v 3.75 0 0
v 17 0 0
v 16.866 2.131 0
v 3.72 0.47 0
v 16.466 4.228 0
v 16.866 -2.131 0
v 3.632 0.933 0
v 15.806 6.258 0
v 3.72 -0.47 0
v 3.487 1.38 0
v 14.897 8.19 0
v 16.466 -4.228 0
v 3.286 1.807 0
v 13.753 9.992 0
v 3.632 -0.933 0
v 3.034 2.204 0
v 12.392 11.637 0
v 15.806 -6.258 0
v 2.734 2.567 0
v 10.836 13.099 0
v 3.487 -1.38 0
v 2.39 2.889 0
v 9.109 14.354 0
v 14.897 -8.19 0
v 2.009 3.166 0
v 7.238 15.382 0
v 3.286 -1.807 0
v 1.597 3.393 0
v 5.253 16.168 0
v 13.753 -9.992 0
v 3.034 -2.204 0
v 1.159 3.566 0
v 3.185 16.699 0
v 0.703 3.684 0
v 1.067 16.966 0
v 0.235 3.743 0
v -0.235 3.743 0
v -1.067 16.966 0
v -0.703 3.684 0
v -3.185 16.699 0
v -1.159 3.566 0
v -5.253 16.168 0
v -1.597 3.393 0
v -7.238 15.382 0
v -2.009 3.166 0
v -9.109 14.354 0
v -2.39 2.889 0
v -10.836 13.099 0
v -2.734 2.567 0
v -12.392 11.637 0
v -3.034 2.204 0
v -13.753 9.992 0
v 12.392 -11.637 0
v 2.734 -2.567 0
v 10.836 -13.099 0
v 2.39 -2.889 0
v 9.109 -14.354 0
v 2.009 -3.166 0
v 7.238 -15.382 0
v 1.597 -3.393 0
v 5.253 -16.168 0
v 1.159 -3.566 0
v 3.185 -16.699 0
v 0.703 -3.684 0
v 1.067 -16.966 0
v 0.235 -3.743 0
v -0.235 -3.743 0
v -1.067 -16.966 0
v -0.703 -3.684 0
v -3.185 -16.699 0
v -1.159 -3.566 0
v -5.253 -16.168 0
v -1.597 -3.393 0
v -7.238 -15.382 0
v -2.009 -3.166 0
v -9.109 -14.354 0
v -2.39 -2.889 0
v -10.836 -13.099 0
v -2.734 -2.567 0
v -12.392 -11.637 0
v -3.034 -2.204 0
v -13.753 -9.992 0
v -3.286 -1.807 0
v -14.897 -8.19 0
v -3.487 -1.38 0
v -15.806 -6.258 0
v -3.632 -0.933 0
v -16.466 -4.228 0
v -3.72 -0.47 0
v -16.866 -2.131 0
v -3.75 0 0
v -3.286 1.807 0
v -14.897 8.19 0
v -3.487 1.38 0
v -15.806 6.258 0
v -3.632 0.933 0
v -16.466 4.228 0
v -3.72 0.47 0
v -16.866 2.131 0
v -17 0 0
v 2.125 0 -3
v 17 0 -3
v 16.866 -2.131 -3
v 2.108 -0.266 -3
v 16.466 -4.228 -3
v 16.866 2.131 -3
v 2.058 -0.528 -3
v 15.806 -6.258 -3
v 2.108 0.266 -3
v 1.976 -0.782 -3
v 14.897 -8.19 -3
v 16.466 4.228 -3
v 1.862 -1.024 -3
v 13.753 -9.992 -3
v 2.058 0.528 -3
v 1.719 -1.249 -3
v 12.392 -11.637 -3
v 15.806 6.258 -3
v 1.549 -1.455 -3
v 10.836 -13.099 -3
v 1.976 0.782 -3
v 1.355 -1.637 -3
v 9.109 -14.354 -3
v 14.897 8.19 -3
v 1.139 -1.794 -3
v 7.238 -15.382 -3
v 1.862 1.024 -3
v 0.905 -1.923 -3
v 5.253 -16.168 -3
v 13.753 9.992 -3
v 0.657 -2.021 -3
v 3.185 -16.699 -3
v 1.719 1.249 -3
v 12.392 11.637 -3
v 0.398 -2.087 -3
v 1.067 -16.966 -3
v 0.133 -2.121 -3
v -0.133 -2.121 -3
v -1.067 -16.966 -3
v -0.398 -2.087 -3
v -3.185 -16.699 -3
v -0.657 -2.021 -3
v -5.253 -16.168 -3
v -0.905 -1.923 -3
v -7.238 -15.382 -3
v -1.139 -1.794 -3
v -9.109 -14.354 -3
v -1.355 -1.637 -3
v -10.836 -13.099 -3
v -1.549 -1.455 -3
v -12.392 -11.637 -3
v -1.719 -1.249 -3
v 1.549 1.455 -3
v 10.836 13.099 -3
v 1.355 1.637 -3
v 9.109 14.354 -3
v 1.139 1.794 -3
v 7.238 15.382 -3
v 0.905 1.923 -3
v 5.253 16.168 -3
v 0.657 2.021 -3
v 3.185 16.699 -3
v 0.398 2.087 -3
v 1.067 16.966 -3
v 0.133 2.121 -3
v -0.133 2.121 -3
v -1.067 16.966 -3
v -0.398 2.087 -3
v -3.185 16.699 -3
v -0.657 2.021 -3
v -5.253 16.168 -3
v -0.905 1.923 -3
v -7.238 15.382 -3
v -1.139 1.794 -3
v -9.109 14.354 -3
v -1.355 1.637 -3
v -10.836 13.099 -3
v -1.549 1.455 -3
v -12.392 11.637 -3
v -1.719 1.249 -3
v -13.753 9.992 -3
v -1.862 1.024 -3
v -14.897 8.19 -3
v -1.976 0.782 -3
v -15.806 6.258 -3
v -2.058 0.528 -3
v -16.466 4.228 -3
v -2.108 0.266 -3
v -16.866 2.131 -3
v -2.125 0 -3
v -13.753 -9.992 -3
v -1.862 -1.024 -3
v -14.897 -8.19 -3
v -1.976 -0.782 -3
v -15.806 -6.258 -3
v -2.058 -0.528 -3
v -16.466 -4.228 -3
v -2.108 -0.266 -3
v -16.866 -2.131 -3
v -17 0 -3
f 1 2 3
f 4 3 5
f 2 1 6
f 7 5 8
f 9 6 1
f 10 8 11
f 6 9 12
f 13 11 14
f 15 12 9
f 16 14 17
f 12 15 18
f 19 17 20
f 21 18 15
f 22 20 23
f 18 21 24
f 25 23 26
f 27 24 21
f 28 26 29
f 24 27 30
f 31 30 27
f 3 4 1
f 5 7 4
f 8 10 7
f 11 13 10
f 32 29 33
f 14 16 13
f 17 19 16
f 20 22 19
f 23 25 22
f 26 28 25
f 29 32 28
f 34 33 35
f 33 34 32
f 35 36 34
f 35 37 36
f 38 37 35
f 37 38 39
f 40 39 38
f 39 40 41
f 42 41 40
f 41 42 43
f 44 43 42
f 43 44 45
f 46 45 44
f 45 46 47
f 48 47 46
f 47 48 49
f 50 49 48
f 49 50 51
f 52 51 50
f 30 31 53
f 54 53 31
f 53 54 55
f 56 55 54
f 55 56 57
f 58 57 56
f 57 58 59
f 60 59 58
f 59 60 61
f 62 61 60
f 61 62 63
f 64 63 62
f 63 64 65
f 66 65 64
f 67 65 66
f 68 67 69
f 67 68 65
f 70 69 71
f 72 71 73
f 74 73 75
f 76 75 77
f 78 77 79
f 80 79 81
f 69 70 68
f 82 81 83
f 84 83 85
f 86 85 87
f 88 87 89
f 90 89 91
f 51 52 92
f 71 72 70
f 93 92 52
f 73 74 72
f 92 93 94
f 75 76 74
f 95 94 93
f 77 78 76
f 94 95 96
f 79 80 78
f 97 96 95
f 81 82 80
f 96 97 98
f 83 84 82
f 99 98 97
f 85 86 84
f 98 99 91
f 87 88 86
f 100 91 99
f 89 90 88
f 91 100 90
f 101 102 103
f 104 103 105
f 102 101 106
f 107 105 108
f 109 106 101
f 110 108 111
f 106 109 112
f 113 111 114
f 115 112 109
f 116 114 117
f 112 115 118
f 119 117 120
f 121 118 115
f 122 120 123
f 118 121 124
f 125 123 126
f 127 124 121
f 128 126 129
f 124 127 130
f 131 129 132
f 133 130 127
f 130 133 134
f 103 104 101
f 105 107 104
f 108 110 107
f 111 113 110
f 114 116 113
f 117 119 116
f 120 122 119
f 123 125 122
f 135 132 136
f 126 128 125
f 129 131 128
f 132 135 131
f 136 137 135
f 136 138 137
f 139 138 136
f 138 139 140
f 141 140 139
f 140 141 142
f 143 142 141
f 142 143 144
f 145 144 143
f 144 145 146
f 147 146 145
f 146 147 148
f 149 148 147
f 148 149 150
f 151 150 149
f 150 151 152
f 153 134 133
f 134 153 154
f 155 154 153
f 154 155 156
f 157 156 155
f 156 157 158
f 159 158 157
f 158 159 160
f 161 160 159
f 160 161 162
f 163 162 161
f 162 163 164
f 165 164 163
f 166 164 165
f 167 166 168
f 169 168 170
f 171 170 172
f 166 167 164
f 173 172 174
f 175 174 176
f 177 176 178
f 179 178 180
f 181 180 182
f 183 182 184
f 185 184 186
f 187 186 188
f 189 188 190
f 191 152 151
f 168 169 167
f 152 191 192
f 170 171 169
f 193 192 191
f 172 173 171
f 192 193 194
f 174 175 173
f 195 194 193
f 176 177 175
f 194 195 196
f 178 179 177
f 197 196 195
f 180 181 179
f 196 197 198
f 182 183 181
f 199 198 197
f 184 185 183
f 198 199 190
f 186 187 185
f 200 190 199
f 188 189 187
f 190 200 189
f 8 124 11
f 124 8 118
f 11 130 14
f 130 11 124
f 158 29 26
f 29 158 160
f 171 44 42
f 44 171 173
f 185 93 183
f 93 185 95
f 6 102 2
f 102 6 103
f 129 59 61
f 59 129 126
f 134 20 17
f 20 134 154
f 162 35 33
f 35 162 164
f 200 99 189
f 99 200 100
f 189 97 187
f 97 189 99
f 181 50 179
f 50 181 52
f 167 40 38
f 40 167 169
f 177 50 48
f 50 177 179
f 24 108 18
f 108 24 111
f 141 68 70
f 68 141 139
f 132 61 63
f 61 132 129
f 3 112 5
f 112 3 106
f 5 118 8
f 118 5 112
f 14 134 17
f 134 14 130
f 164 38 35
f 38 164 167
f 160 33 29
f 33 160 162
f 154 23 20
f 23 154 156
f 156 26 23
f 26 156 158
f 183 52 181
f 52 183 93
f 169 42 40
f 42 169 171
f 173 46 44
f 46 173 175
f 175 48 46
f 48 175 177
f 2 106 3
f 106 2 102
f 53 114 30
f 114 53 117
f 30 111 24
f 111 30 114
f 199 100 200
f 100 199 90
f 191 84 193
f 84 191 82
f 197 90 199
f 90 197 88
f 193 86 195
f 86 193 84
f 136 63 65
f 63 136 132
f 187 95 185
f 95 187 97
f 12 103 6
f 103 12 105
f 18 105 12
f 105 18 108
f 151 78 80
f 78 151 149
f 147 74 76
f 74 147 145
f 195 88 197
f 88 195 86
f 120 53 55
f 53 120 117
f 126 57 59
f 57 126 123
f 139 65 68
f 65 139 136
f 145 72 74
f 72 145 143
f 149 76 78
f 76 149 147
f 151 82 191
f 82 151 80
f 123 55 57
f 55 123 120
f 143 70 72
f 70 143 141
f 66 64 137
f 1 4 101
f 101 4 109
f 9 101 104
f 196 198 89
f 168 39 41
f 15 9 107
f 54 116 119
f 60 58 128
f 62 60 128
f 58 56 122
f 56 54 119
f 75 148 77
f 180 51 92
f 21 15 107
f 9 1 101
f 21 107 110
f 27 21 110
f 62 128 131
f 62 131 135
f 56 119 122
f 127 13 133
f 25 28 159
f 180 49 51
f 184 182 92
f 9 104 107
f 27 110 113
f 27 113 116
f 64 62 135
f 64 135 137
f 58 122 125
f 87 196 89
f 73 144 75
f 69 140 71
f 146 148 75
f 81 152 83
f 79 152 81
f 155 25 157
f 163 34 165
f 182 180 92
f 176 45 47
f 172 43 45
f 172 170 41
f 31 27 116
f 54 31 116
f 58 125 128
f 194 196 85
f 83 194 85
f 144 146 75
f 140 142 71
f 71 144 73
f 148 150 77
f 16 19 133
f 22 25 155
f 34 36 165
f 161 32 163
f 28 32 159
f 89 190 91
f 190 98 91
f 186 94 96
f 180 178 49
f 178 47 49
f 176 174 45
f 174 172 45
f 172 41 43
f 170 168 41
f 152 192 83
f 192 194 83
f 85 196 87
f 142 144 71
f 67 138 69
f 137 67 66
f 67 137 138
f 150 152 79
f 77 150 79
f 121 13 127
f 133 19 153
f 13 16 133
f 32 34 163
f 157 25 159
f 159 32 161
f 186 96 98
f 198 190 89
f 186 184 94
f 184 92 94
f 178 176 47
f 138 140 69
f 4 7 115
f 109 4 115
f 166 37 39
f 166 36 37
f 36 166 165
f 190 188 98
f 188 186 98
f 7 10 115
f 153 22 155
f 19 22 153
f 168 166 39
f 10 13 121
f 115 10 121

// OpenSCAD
$fn = 50;


difference() {
	union() {
		translate(v = [0, 0, -3.0000000000]) {
			cylinder(h = 3, r = 7.0000000000);
		}
		translate(v = [0, 0, -3.0000000000]) {
			cylinder(h = 3, r = 17.0000000000);
		}
	}
	union() {
		translate(v = [0, 0, 0]) {
			rotate(a = [0, 0, 0]) {
				difference() {
					union() {
						#translate(v = [0, 0, -3.0000000000]) {
							cylinder(h = 3, r = 2.0000000000);
						}
						#translate(v = [0, 0, -3]) {
							cylinder(h = 3, r1 = 2.1250000000, r2 = 3.7500000000);
						}
						#translate(v = [0, 0, -3.0000000000]) {
							cylinder(h = 3, r = 2.1250000000);
						}
						#translate(v = [0, 0, -3.0000000000]) {
							cylinder(h = 3, r = 2.0000000000);
						}
					}
					union();
				}
			}
		}
	}
}
